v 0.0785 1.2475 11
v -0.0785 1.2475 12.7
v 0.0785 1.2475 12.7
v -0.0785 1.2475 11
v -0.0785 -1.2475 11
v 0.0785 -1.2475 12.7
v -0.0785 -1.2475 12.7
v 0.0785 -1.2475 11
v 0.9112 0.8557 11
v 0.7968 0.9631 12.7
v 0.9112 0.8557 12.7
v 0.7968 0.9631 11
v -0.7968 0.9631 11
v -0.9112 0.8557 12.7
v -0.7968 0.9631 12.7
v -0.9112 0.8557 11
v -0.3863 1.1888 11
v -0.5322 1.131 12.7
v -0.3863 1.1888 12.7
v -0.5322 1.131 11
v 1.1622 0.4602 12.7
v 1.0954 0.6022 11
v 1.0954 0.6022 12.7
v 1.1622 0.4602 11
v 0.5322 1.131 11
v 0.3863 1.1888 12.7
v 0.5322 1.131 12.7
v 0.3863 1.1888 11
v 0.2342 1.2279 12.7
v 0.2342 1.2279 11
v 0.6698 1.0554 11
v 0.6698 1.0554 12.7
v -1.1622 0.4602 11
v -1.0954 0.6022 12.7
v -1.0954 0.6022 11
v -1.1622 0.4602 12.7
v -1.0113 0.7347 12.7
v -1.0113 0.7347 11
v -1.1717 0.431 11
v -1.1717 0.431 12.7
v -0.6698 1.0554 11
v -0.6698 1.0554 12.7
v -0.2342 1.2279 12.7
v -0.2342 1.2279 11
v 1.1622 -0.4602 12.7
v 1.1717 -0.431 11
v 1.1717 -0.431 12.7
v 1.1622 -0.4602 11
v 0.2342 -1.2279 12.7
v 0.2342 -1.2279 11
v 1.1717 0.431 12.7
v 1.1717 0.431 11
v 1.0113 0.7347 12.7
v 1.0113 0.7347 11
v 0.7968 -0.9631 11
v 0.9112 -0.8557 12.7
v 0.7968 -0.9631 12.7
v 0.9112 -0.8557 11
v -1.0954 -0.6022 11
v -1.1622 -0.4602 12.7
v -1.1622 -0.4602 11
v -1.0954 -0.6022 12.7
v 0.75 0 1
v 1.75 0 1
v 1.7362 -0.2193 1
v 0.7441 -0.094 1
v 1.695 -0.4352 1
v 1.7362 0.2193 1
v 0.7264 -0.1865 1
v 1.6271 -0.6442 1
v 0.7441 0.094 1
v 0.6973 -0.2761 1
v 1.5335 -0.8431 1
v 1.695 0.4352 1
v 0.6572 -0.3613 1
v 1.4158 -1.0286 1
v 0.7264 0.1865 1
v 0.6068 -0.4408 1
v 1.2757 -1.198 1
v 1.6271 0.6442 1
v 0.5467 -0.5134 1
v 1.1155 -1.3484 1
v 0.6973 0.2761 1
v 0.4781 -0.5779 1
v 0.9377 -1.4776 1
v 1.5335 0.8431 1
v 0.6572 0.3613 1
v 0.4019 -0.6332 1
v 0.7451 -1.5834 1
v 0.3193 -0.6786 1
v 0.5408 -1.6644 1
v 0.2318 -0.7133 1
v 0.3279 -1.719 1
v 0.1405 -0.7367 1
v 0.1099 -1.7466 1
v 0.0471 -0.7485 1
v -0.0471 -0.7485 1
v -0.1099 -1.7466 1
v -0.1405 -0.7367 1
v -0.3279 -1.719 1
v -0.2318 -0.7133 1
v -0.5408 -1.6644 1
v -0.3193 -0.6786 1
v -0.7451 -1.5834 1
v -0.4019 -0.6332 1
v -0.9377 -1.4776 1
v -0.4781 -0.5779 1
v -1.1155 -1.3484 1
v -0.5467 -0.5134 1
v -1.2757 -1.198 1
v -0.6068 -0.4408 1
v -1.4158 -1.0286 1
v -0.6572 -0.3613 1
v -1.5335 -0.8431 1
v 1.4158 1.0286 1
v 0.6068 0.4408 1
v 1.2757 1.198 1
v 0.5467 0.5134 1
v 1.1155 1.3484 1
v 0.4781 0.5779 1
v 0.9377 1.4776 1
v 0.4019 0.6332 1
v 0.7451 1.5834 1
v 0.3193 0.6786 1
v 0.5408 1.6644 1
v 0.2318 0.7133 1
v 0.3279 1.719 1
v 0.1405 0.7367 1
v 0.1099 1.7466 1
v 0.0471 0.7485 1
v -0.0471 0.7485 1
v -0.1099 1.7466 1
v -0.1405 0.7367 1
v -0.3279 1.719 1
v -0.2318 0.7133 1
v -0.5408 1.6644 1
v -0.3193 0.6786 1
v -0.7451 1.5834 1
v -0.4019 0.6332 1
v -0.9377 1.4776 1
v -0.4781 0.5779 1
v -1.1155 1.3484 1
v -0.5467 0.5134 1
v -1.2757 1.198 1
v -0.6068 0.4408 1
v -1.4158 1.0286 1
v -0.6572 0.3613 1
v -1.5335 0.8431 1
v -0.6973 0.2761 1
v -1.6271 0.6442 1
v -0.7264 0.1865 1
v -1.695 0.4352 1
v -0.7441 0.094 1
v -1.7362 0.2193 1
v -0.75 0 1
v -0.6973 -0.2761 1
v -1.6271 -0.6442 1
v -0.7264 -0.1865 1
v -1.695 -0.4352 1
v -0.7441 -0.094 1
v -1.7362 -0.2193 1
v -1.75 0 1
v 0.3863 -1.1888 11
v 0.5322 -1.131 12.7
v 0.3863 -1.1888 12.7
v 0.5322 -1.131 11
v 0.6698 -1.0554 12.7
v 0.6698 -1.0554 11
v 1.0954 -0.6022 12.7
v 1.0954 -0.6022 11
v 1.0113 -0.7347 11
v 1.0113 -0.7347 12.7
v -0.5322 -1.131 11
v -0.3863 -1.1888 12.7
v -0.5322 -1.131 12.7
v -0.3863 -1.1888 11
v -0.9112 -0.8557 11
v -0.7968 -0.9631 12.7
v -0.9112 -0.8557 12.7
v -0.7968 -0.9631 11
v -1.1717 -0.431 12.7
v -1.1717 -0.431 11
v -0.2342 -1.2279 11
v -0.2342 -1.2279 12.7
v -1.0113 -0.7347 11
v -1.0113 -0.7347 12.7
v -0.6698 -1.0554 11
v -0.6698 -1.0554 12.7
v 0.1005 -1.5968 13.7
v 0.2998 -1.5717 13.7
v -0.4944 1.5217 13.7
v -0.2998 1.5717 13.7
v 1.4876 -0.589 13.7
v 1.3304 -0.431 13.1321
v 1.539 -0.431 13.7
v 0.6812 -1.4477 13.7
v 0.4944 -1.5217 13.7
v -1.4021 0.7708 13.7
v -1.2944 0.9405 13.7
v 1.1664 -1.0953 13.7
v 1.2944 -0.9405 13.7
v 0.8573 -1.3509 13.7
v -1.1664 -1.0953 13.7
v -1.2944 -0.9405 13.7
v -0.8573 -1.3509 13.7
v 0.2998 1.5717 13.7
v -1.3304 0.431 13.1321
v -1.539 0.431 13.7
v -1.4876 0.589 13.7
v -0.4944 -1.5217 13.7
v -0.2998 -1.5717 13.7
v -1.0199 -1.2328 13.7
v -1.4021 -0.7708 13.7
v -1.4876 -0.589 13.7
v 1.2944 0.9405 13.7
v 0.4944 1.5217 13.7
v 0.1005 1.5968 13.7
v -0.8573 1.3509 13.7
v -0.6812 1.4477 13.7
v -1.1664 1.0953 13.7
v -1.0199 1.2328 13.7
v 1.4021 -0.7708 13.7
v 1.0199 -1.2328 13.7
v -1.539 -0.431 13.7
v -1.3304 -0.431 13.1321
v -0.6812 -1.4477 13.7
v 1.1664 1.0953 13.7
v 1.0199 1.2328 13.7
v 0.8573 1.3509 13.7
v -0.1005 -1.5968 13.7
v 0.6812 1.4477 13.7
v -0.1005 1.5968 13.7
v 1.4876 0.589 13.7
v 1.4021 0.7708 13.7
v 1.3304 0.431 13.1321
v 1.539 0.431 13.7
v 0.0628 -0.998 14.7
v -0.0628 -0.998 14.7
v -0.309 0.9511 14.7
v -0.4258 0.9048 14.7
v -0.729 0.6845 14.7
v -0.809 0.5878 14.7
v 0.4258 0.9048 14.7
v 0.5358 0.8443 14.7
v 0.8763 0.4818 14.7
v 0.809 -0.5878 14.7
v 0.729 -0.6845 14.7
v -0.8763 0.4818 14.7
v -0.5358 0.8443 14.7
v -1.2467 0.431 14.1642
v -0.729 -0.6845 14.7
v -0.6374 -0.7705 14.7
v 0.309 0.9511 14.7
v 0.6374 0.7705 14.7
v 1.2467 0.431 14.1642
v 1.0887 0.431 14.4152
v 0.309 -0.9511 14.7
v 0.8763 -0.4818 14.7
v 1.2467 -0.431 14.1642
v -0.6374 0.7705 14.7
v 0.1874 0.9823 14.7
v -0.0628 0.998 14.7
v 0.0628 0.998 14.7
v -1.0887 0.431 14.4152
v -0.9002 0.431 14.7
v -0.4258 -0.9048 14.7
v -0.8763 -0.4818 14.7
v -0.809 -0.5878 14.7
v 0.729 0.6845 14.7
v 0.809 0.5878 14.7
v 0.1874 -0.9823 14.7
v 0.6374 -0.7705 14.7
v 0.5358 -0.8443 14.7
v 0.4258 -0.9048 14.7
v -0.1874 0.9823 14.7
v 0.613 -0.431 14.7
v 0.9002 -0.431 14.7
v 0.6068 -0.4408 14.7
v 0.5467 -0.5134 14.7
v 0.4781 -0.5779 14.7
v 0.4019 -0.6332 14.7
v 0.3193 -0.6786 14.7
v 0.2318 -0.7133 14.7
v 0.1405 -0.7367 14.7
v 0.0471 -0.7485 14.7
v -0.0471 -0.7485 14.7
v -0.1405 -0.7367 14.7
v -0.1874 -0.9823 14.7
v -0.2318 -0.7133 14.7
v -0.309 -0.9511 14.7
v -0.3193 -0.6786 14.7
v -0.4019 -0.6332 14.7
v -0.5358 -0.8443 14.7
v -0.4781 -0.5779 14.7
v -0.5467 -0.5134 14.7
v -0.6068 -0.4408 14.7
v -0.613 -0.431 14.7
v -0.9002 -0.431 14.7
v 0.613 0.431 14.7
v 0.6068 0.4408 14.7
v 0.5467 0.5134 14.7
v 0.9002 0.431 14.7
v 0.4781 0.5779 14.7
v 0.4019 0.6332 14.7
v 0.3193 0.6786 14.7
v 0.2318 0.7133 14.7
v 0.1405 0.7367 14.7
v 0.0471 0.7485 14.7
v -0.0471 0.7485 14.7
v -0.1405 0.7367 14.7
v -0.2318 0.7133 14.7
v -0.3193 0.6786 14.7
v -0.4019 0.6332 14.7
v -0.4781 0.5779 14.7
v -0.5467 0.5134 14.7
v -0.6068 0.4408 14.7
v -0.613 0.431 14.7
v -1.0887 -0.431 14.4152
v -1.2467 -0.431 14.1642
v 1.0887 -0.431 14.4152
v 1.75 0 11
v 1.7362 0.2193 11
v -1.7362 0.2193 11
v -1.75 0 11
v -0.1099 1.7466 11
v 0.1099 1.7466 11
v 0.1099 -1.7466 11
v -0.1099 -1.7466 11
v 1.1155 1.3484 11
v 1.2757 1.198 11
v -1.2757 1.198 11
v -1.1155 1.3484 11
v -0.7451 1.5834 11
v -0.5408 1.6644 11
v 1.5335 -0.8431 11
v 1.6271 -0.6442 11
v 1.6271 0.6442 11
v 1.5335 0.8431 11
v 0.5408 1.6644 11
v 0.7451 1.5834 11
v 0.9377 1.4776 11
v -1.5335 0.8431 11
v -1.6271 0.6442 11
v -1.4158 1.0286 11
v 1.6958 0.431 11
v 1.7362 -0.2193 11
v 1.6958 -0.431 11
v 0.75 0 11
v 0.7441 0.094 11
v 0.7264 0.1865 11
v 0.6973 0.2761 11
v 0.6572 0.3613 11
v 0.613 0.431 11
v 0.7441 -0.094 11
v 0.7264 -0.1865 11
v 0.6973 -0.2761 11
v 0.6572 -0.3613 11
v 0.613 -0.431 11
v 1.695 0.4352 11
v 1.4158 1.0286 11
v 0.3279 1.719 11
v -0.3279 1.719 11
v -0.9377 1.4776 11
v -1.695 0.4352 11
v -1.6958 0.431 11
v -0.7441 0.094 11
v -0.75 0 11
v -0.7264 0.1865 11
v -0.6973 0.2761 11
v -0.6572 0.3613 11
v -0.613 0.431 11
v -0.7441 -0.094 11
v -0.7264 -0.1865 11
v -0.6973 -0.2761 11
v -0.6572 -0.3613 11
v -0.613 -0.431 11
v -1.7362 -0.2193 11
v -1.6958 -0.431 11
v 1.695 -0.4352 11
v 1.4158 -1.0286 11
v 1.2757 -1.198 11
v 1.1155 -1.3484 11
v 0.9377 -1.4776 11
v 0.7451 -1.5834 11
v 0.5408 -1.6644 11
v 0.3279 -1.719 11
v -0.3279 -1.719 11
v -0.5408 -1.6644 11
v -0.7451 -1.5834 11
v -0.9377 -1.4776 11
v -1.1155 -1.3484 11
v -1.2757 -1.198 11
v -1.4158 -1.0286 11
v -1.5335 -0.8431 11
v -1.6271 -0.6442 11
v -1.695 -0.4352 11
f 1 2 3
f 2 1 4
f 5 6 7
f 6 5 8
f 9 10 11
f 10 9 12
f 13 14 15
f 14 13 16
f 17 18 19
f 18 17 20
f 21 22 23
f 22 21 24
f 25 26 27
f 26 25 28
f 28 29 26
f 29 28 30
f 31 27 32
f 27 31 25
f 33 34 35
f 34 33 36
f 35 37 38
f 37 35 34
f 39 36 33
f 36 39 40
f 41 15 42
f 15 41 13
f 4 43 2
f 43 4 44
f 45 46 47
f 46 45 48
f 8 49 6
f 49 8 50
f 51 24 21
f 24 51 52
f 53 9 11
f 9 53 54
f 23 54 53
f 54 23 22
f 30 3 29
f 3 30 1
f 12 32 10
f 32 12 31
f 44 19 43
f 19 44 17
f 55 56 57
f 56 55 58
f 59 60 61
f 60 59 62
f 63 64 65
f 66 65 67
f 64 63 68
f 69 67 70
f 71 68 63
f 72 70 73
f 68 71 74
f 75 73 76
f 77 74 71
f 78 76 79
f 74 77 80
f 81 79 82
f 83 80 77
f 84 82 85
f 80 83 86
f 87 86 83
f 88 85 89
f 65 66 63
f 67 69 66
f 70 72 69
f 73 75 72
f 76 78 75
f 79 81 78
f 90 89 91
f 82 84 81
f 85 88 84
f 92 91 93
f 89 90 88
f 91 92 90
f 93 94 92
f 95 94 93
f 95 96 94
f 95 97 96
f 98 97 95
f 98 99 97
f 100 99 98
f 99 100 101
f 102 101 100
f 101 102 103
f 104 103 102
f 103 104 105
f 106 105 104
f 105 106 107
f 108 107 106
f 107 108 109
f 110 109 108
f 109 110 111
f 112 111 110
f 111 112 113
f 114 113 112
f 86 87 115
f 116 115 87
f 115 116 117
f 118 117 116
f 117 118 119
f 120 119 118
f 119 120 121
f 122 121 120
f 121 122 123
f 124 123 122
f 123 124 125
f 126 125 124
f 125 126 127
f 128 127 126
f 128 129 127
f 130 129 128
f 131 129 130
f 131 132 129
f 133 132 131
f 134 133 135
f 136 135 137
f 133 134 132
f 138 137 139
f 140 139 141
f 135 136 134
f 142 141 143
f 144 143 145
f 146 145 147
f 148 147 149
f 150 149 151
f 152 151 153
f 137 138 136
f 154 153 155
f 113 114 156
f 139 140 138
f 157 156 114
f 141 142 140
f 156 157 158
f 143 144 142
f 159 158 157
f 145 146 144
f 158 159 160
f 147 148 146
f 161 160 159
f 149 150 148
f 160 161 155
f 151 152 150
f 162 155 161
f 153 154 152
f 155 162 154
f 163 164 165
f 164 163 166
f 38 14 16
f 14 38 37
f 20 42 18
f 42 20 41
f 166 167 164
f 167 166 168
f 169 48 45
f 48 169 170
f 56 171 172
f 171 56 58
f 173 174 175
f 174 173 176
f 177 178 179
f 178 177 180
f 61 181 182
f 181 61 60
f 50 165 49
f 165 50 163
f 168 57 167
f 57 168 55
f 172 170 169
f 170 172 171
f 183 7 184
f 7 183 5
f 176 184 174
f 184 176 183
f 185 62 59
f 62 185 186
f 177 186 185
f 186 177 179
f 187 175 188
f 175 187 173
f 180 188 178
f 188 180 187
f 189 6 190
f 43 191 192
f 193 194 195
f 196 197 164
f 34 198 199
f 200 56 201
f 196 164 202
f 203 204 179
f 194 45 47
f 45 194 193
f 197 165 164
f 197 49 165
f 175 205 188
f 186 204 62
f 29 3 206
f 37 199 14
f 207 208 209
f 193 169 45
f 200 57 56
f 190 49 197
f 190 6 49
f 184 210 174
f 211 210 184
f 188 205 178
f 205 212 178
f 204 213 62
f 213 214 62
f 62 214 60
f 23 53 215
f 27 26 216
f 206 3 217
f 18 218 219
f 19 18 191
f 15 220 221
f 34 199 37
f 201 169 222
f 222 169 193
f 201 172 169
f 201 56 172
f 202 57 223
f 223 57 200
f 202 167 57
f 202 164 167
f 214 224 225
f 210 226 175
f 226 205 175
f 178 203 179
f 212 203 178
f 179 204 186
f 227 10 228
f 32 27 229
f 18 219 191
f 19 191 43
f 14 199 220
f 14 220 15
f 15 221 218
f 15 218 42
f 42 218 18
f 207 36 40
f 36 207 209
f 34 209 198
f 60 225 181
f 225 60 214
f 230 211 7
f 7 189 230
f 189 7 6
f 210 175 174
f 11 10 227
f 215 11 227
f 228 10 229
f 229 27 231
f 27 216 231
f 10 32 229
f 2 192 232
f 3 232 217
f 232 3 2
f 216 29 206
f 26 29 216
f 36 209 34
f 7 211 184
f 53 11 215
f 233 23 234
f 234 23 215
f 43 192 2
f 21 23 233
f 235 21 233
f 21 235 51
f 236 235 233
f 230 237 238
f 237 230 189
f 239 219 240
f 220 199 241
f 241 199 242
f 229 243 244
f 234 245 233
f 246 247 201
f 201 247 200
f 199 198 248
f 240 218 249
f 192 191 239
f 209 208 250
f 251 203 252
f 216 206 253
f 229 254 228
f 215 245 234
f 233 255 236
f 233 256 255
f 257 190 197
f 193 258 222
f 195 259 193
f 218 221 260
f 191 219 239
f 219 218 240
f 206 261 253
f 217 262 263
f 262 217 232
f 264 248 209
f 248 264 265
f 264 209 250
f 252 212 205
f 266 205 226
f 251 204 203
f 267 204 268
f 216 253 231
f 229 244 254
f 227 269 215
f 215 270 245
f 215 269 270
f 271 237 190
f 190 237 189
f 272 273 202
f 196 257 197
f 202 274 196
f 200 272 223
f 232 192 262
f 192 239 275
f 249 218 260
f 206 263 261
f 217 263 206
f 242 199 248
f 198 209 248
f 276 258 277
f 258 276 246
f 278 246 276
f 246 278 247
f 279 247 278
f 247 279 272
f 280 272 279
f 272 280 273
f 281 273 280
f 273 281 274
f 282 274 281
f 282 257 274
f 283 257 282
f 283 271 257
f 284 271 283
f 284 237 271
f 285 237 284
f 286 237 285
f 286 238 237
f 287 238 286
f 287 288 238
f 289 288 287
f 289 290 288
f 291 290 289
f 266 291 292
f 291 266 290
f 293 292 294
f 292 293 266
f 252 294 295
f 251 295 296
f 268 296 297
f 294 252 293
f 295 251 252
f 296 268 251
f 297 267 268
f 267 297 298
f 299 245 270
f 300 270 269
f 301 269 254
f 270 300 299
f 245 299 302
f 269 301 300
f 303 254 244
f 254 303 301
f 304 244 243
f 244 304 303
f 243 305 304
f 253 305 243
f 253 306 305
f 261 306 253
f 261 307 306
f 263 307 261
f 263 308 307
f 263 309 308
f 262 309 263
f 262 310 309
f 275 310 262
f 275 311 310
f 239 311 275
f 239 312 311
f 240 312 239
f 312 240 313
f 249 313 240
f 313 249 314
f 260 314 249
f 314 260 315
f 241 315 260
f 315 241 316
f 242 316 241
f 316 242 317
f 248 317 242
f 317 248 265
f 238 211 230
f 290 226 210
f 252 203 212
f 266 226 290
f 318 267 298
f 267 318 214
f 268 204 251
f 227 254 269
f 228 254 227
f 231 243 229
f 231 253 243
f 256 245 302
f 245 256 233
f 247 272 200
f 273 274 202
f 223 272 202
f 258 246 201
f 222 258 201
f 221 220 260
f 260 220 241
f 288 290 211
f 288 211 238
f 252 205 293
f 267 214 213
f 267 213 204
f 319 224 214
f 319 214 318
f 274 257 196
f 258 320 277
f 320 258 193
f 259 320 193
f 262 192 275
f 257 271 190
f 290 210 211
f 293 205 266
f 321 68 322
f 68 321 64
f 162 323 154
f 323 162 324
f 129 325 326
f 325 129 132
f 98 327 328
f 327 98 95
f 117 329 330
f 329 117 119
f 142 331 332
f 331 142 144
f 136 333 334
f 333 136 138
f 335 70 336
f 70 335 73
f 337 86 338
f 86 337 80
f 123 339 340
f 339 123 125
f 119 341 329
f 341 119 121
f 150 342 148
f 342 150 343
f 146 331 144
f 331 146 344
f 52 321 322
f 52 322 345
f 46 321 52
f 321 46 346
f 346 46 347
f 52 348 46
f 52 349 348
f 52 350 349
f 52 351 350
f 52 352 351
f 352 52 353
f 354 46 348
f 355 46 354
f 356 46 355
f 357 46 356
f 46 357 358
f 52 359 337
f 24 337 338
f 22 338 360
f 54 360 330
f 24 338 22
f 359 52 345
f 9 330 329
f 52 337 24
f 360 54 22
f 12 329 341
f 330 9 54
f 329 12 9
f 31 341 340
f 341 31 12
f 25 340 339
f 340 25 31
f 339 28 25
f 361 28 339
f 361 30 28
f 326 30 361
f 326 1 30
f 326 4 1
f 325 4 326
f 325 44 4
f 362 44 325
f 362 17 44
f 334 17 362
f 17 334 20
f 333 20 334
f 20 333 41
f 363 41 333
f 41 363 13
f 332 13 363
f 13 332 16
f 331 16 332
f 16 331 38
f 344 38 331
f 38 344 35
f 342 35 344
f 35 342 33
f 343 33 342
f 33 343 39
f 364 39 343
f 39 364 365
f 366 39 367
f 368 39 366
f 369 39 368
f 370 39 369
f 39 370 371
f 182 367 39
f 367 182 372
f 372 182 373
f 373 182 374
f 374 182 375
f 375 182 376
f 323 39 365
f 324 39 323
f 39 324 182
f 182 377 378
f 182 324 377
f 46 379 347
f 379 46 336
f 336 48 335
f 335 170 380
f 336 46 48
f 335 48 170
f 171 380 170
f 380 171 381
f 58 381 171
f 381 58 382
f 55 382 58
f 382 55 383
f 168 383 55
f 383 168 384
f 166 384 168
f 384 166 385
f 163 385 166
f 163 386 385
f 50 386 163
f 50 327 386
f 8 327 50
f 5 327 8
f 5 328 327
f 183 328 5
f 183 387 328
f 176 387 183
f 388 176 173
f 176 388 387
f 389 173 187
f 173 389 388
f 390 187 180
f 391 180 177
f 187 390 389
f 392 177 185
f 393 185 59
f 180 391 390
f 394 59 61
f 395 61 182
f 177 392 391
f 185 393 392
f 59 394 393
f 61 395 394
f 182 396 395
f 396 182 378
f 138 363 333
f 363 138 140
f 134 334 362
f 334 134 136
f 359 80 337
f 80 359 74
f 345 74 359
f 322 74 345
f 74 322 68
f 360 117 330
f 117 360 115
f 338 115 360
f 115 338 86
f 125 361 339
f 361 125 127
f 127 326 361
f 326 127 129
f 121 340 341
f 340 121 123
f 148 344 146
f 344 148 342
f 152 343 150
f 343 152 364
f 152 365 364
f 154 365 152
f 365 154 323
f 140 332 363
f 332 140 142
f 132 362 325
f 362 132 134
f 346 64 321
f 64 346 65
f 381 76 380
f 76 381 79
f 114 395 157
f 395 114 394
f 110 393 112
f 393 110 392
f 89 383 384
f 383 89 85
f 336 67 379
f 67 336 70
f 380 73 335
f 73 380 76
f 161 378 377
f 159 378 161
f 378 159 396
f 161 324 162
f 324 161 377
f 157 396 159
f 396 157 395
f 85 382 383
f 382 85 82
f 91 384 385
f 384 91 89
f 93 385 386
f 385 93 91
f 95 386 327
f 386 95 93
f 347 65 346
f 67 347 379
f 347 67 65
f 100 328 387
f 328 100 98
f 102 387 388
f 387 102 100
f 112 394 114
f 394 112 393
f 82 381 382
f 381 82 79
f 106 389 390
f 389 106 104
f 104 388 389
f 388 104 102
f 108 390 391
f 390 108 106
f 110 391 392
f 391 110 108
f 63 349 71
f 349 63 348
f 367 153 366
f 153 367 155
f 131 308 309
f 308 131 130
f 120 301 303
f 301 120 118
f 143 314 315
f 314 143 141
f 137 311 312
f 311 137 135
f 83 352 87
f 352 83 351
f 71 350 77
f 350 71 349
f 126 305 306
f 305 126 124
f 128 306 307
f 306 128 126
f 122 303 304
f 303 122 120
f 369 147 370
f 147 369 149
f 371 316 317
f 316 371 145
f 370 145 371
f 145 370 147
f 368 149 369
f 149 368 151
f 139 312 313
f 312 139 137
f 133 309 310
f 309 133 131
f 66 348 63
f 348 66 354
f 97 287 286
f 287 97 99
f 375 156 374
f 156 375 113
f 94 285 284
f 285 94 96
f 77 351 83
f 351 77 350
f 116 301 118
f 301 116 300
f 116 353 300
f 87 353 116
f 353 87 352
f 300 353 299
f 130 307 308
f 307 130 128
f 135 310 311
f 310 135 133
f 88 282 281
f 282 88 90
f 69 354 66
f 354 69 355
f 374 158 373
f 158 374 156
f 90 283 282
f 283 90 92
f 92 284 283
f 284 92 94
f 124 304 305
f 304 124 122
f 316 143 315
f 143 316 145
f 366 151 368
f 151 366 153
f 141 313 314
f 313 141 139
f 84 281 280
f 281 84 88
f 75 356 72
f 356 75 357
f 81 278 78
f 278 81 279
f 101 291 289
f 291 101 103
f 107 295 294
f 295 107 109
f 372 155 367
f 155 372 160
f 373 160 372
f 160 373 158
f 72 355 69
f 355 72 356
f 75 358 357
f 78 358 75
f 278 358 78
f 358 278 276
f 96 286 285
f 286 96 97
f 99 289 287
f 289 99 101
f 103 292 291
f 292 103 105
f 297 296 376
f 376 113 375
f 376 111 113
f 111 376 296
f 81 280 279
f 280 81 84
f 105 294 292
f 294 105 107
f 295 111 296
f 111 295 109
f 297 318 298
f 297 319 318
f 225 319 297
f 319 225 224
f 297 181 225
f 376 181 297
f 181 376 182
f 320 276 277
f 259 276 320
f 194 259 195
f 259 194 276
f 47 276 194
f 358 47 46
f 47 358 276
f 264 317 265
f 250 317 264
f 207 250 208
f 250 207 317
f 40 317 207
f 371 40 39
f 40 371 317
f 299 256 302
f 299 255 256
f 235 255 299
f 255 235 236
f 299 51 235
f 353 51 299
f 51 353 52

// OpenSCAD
/*
	Snap in PCB standoff.
	Kevin Osborn
	http://wyolum.com
	Created 5/30/2014
*/

/*
Printing Notes:
If you are printing this as a part of a case or testing jig, you can print the bottom plate hot and fast if you'd like, but for holes for M3 and smaller, you should slow down and cool the printing temperature for the tower bits. Also, if you are just printing standalone for testing fit, you need to print at least two at once in order to let the thin tower parts cool between layers.

*/

$fn=50;
module boardmount(HoleD,BoardThick,lift)
{
	topZ = lift+BoardThick;
	pegR = HoleD/2;
	// this is really a setting.
	notchW = pegR/1.45;//width of the flexy notch in terms of peg radius
	difference()
	{
		union()
		{
			cylinder(r= pegR,h = topZ); //master peg
			translate([0,0,topZ])cylinder(r1=pegR,r2= pegR+.35, h =1);// relief for overhang
			translate([0,0,topZ+1])cylinder(r1=pegR+.35,r2= pegR-.25, h =1); // insertion cone
			cylinder(r = (HoleD/2)+.5, h=lift); //standoff is always 2mm> post size (Diameter)
		}
	cylinder(r= pegR-.5, h = topZ+3);
	translate([-(HoleD+2)/2,-notchW/2,lift])cube([HoleD+2,notchW,6]);//notch for insertion flex
	}//difference
}; //module


// Sample part for test fitting
// translate([-2.25,-2.25,0])cube([4.5,4.5,1]);
translate([0,0,1])boardmount(HoleD = 2.5, BoardThick = 1.70, lift=10);
